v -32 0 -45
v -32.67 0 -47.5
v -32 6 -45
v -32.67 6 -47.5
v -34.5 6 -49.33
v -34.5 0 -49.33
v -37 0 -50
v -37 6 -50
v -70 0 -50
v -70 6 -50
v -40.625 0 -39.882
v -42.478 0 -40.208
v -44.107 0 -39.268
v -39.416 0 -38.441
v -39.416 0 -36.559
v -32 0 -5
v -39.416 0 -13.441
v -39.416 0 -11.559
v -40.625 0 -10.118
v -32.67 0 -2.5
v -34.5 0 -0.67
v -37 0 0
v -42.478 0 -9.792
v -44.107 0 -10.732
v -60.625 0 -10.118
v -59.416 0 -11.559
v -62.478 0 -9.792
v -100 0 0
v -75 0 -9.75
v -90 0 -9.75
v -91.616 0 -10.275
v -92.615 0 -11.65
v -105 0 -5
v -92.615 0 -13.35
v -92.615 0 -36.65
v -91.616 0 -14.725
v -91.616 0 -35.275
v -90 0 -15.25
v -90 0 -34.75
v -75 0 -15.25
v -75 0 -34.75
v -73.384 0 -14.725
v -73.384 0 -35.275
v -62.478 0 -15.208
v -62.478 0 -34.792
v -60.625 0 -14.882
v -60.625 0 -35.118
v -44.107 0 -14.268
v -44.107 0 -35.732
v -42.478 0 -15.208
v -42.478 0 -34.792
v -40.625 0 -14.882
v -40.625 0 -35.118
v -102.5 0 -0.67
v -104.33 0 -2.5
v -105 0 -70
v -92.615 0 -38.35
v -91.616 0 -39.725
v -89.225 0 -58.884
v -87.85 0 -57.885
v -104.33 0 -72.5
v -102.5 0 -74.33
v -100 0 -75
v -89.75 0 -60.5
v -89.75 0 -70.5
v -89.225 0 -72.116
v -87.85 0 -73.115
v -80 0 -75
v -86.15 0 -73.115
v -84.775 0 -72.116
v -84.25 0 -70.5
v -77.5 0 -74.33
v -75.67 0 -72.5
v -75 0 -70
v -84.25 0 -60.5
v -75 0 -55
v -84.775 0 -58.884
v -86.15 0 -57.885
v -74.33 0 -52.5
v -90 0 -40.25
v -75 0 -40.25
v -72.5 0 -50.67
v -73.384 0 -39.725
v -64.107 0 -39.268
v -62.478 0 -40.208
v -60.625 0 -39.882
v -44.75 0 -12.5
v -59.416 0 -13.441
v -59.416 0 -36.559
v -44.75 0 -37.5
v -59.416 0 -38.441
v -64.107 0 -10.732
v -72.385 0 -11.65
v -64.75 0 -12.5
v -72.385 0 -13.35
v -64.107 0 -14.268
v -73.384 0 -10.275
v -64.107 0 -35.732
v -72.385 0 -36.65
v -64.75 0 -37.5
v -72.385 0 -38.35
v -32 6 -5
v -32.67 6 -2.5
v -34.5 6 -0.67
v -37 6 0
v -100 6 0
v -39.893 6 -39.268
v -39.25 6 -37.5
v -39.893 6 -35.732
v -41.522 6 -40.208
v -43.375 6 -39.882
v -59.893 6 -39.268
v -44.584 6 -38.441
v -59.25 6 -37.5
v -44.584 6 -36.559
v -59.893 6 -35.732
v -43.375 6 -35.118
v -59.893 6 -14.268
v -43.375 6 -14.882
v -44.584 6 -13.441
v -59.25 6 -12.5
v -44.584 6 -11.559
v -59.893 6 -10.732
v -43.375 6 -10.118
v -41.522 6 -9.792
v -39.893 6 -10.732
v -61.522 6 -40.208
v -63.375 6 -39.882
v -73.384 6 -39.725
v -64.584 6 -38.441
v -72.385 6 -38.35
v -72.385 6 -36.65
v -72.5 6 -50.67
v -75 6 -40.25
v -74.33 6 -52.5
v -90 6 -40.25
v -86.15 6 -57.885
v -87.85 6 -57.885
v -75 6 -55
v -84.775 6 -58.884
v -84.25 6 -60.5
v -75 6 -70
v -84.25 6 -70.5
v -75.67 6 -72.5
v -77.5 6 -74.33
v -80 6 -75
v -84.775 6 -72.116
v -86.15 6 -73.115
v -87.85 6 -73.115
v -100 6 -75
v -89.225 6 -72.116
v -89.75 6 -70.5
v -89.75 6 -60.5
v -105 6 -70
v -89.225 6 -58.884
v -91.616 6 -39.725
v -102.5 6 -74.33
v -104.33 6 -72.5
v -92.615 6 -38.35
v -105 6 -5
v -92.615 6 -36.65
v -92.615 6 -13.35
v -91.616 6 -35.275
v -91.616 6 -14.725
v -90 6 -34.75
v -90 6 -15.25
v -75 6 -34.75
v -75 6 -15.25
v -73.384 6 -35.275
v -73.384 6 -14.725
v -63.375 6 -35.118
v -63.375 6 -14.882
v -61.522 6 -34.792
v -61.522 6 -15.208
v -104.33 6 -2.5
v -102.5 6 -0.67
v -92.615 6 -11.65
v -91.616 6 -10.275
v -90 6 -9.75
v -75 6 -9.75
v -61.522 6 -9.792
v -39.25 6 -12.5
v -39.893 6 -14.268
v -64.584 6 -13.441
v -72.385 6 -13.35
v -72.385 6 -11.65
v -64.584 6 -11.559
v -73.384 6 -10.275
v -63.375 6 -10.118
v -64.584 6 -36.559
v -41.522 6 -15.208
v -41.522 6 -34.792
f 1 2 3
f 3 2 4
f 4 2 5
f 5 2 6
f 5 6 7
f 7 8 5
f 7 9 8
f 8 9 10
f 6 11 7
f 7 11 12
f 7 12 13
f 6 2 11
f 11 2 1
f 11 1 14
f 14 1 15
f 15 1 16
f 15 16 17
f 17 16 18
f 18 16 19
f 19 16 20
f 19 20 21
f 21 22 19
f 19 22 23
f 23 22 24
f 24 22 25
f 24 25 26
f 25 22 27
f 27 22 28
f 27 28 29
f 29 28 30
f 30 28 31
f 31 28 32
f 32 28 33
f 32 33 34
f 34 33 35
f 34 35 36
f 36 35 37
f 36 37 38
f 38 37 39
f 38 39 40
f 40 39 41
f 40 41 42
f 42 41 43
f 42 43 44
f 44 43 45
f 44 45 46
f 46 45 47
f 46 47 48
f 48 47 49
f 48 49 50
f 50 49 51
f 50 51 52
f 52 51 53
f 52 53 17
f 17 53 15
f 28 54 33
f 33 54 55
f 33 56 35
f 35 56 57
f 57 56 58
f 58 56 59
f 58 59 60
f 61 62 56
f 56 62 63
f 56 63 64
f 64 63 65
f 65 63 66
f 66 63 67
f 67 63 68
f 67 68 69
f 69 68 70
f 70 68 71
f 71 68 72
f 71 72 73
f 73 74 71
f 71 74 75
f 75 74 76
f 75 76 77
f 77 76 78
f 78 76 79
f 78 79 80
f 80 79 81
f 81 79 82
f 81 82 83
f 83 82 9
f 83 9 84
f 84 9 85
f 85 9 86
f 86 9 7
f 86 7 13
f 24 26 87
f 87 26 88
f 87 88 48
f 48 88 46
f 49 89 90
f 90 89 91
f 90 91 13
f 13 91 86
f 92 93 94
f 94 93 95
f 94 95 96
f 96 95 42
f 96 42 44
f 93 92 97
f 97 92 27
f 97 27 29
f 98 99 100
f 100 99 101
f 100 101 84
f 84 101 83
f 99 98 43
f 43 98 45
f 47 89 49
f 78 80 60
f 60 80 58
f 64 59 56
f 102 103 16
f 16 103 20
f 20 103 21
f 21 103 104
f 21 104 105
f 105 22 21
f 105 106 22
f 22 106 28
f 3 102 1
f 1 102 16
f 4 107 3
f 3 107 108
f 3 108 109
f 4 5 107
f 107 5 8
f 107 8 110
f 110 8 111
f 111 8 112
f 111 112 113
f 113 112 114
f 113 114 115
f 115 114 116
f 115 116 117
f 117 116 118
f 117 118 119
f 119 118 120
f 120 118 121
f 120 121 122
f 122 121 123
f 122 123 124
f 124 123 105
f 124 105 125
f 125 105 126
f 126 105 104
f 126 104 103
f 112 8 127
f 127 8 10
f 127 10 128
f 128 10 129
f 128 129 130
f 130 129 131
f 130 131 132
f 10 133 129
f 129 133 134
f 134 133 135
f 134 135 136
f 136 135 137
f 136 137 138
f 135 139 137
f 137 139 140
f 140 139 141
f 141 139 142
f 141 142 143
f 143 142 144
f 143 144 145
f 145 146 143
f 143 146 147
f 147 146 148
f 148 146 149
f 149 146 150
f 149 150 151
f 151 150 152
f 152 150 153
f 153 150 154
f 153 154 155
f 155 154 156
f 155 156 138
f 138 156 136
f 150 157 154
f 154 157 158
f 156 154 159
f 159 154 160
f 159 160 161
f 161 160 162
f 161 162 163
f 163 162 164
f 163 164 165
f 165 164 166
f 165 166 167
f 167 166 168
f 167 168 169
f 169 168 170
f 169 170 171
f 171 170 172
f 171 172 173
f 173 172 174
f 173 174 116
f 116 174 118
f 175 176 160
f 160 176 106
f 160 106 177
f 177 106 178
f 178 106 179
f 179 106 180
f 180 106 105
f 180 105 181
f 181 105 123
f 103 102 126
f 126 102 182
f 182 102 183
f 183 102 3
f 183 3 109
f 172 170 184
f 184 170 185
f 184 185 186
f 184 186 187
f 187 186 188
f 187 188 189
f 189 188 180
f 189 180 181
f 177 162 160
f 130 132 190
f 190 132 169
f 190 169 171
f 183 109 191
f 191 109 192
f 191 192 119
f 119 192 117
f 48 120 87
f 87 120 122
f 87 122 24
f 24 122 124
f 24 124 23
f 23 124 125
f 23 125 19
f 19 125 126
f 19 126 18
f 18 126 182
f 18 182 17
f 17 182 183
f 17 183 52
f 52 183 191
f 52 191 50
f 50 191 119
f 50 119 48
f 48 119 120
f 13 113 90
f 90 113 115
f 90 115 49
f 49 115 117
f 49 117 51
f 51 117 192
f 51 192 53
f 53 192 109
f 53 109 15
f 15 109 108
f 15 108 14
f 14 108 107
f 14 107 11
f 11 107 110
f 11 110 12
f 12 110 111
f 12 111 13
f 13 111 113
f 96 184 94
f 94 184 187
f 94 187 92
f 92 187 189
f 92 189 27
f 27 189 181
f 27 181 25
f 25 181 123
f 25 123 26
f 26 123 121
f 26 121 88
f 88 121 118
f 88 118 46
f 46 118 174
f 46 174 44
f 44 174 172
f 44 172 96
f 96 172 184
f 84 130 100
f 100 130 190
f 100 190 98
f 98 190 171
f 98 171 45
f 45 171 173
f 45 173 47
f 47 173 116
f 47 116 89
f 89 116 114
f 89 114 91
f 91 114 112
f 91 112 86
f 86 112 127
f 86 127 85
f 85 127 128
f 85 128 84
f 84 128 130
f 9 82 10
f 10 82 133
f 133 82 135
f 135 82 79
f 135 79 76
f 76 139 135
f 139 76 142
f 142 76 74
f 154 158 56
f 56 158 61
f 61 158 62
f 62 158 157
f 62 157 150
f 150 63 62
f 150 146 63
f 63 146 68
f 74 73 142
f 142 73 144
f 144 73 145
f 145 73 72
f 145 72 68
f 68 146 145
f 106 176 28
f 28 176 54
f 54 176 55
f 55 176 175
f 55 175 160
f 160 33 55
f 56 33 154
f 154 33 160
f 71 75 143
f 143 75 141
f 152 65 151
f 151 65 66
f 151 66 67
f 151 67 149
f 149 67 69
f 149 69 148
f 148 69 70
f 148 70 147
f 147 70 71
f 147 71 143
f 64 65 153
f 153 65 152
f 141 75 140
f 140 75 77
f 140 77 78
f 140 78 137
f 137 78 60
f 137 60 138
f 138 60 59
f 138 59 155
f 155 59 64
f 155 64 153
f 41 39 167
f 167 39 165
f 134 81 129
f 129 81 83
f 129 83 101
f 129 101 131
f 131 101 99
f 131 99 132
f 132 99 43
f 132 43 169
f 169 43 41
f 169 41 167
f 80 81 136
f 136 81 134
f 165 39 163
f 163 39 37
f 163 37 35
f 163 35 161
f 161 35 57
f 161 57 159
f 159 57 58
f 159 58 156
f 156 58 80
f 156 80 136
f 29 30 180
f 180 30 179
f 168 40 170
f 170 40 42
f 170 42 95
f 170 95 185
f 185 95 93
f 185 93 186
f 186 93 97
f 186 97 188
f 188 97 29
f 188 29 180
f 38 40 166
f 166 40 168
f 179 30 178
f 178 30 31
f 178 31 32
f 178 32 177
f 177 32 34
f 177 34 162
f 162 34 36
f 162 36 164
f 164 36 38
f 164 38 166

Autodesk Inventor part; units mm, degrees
ref_plane "YZ Plane" through (0, 0, 0) normal (1, 0, 0) x (0, 1, 0)
ref_plane "XZ Plane" through (0, 0, 0) normal (0, 1, 0) x (-1, 0, 0)
ref_plane "XY Plane" through (0, 0, 0) normal (0, 0, 1) x (1, 0, 0)
sketch "Sketch1" plane through (0, 0, 0) normal (0, 1, 0) x (-1, 0, 0)
  line L0 (0, 0) -> (105, 0)
  line L1 (105, 0) -> (105, -50)
  line L2 (105, -50) -> (0, -50)
  line L3 (0, -50) -> (0, 0)
  line L4 (0, 0) -> (0, -16.6667)
  line L5 (0, -16.6667) -> (11, -16.6667)
  dimension "d0" = 105
  dimension "d1" = 50
  dimension "d2" = 16.6667
  dimension "d3" = 11
extrude "Extrusion1" add sketch "Sketch1" along normal blind 6
sketch "Sketch3" plane through (0, 6, 0) normal (0, 1, 0) x (1, 0, 0)
  circle A0 centre (-20, 12.5) radius 2.75
  line L0 (0, 0) -> (0, 50) projected
  line L1 (-105, 0) -> (0, 0) projected
  circle A1 centre (-20, 37.5) radius 2.75
  dimension "d21" = 5.5
  dimension "d22" = 20
  dimension "d23" = 12.5
  dimension "d26" = 25
extrude "Extrusion3" cut sketch "Sketch3" against normal through all
sketch "Sketch4" plane through (0, 6, 0) normal (0, 1, 0) x (1, 0, 0)
  circle A0 centre (-20, 12.5) radius 2.75 projected
  line L0 (-20, 12.5) -> (-75, 12.5)
  line L1 (-75, 12.5) -> (-90, 12.5) construction
  line L2 (-75, 15.25) -> (-90, 15.25)
  line L3 (-90, 9.75) -> (-75, 9.75)
  arc A1 (-75, 9.75) -> (-75, 15.25) centre (-75, 12.5) ccw
  arc A2 (-90, 15.25) -> (-90, 9.75) centre (-90, 12.5) ccw
  point P0 (0, 0)
  point P1 (-82.5, 12.5)
  dimension "d33" = 55
  dimension "d34" = 15
  dimension "d35" = 5.5
extrude "Extrusion4" cut sketch "Sketch4" against normal through all contours A1 L3 A2 L2
pattern_linear "Rectangular Pattern2" count 2 spacing 25 along (0, 0, -1) of "Extrusion4"
sketch "Sketch5" plane through (0, 0, -50) normal (0, 0, -1) x (-1, 0, 0)
  line L0 (105, 0) -> (105, 6) projected
  line L1 (105, 0) -> (0, 0) projected
  line L2 (105, 6) -> (75, 6)
  line L3 (75, 6) -> (75, 0)
  line L4 (75, 0) -> (105, 0)
  line L5 (105, 0) -> (105, 6)
  dimension "d45" = 30
extrude "Extrusion5" add sketch "Sketch5" along normal blind 25
sketch "Sketch6" plane through (0, 6, 0) normal (0, 1, 0) x (1, 0, 0)
  line L0 (-87, 60.5) -> (-87, 70.5) construction
  line L1 (-84.25, 60.5) -> (-84.25, 70.5)
  line L2 (-89.75, 70.5) -> (-89.75, 60.5)
  arc A0 (-89.75, 60.5) -> (-84.25, 60.5) centre (-87, 60.5) ccw
  arc A1 (-84.25, 70.5) -> (-89.75, 70.5) centre (-87, 70.5) ccw
  line L3 (-75, 50) -> (-75, 75) projected
  arc A2 (-90, 40.25) -> (-90, 34.75) centre (-90, 37.5) ccw projected
  point P0 (0, 0)
  point P1 (-87, 65.5)
  dimension "d48" = 10
  dimension "d49" = 5.5
  dimension "d50" = 12
  dimension "d51" = 28
extrude "Extrusion6" cut sketch "Sketch6" against normal through all
fillet "Fillet2" radius 5 6 edges at (-105, 3, 0) (0, 3, 0) (-75, 3, -75) (-105, 3, -75) (0, 3, -50) (-75, 3, -50)
sketch "Sketch7" plane through (0, 6, 0) normal (0, 1, 0) x (1, 0, 0)
  circle A0 centre (-20, 12.5) radius 2.75 projected
  line L0 (-20, 12.5) -> (-42, 12.5)
  line L1 (-42, 12.5) -> (-62, 12.5)
  circle A1 centre (-62, 12.5) radius 2.75
  circle A2 centre (-42, 12.5) radius 2.75
  line L2 (0, 5) -> (0, 45) projected
  line L3 (0, 0) -> (0, 45)
  circle A3 centre (-42, 37.5) radius 2.75
  circle A4 centre (-62, 37.5) radius 2.75
  dimension "d55" = 22
  dimension "d56" = 20
  dimension "d57" = 5.5
  dimension "d58" = 5.5
  dimension "d61" = 25
extrude "Extrusion7" cut sketch "Sketch7" against normal through all contours A2 L1 L0 | L0 L1 A2 | A1 | A3 | A4
sketch "Sketch9" plane through (0, 6, 0) normal (0, 1, 0) x (1, 0, 0)
  point P0 (0, 0)
sketch "Sketch12" plane through (0, 6, 0) normal (0, 1, 0) x (1, 0, 0)
  circle A0 centre (-42, 37.5) radius 2.75 projected
  line L0 (-42, 37.5) -> (-32, 37.5)
  line L1 (-32, 37.5) -> (-32, 50)
  line L2 (-5, 50) -> (-70, 50) projected
  line L3 (-32, 50) -> (0, 50)
  line L4 (0, 50) -> (0, 0)
  line L5 (0, 0) -> (-32, 0)
  line L6 (-32, 0) -> (-32, 50)
  dimension "d87" = 10
extrude "Extrusion10" cut sketch "Sketch12" against normal blind 10 contours L1 L2 L3 L4 L5 L6
fillet "Fillet3" radius 5 2 edges at (-32, 3, 0) (-32, 3, -50)
properties part number "X_Carriage_Plate_Short"
